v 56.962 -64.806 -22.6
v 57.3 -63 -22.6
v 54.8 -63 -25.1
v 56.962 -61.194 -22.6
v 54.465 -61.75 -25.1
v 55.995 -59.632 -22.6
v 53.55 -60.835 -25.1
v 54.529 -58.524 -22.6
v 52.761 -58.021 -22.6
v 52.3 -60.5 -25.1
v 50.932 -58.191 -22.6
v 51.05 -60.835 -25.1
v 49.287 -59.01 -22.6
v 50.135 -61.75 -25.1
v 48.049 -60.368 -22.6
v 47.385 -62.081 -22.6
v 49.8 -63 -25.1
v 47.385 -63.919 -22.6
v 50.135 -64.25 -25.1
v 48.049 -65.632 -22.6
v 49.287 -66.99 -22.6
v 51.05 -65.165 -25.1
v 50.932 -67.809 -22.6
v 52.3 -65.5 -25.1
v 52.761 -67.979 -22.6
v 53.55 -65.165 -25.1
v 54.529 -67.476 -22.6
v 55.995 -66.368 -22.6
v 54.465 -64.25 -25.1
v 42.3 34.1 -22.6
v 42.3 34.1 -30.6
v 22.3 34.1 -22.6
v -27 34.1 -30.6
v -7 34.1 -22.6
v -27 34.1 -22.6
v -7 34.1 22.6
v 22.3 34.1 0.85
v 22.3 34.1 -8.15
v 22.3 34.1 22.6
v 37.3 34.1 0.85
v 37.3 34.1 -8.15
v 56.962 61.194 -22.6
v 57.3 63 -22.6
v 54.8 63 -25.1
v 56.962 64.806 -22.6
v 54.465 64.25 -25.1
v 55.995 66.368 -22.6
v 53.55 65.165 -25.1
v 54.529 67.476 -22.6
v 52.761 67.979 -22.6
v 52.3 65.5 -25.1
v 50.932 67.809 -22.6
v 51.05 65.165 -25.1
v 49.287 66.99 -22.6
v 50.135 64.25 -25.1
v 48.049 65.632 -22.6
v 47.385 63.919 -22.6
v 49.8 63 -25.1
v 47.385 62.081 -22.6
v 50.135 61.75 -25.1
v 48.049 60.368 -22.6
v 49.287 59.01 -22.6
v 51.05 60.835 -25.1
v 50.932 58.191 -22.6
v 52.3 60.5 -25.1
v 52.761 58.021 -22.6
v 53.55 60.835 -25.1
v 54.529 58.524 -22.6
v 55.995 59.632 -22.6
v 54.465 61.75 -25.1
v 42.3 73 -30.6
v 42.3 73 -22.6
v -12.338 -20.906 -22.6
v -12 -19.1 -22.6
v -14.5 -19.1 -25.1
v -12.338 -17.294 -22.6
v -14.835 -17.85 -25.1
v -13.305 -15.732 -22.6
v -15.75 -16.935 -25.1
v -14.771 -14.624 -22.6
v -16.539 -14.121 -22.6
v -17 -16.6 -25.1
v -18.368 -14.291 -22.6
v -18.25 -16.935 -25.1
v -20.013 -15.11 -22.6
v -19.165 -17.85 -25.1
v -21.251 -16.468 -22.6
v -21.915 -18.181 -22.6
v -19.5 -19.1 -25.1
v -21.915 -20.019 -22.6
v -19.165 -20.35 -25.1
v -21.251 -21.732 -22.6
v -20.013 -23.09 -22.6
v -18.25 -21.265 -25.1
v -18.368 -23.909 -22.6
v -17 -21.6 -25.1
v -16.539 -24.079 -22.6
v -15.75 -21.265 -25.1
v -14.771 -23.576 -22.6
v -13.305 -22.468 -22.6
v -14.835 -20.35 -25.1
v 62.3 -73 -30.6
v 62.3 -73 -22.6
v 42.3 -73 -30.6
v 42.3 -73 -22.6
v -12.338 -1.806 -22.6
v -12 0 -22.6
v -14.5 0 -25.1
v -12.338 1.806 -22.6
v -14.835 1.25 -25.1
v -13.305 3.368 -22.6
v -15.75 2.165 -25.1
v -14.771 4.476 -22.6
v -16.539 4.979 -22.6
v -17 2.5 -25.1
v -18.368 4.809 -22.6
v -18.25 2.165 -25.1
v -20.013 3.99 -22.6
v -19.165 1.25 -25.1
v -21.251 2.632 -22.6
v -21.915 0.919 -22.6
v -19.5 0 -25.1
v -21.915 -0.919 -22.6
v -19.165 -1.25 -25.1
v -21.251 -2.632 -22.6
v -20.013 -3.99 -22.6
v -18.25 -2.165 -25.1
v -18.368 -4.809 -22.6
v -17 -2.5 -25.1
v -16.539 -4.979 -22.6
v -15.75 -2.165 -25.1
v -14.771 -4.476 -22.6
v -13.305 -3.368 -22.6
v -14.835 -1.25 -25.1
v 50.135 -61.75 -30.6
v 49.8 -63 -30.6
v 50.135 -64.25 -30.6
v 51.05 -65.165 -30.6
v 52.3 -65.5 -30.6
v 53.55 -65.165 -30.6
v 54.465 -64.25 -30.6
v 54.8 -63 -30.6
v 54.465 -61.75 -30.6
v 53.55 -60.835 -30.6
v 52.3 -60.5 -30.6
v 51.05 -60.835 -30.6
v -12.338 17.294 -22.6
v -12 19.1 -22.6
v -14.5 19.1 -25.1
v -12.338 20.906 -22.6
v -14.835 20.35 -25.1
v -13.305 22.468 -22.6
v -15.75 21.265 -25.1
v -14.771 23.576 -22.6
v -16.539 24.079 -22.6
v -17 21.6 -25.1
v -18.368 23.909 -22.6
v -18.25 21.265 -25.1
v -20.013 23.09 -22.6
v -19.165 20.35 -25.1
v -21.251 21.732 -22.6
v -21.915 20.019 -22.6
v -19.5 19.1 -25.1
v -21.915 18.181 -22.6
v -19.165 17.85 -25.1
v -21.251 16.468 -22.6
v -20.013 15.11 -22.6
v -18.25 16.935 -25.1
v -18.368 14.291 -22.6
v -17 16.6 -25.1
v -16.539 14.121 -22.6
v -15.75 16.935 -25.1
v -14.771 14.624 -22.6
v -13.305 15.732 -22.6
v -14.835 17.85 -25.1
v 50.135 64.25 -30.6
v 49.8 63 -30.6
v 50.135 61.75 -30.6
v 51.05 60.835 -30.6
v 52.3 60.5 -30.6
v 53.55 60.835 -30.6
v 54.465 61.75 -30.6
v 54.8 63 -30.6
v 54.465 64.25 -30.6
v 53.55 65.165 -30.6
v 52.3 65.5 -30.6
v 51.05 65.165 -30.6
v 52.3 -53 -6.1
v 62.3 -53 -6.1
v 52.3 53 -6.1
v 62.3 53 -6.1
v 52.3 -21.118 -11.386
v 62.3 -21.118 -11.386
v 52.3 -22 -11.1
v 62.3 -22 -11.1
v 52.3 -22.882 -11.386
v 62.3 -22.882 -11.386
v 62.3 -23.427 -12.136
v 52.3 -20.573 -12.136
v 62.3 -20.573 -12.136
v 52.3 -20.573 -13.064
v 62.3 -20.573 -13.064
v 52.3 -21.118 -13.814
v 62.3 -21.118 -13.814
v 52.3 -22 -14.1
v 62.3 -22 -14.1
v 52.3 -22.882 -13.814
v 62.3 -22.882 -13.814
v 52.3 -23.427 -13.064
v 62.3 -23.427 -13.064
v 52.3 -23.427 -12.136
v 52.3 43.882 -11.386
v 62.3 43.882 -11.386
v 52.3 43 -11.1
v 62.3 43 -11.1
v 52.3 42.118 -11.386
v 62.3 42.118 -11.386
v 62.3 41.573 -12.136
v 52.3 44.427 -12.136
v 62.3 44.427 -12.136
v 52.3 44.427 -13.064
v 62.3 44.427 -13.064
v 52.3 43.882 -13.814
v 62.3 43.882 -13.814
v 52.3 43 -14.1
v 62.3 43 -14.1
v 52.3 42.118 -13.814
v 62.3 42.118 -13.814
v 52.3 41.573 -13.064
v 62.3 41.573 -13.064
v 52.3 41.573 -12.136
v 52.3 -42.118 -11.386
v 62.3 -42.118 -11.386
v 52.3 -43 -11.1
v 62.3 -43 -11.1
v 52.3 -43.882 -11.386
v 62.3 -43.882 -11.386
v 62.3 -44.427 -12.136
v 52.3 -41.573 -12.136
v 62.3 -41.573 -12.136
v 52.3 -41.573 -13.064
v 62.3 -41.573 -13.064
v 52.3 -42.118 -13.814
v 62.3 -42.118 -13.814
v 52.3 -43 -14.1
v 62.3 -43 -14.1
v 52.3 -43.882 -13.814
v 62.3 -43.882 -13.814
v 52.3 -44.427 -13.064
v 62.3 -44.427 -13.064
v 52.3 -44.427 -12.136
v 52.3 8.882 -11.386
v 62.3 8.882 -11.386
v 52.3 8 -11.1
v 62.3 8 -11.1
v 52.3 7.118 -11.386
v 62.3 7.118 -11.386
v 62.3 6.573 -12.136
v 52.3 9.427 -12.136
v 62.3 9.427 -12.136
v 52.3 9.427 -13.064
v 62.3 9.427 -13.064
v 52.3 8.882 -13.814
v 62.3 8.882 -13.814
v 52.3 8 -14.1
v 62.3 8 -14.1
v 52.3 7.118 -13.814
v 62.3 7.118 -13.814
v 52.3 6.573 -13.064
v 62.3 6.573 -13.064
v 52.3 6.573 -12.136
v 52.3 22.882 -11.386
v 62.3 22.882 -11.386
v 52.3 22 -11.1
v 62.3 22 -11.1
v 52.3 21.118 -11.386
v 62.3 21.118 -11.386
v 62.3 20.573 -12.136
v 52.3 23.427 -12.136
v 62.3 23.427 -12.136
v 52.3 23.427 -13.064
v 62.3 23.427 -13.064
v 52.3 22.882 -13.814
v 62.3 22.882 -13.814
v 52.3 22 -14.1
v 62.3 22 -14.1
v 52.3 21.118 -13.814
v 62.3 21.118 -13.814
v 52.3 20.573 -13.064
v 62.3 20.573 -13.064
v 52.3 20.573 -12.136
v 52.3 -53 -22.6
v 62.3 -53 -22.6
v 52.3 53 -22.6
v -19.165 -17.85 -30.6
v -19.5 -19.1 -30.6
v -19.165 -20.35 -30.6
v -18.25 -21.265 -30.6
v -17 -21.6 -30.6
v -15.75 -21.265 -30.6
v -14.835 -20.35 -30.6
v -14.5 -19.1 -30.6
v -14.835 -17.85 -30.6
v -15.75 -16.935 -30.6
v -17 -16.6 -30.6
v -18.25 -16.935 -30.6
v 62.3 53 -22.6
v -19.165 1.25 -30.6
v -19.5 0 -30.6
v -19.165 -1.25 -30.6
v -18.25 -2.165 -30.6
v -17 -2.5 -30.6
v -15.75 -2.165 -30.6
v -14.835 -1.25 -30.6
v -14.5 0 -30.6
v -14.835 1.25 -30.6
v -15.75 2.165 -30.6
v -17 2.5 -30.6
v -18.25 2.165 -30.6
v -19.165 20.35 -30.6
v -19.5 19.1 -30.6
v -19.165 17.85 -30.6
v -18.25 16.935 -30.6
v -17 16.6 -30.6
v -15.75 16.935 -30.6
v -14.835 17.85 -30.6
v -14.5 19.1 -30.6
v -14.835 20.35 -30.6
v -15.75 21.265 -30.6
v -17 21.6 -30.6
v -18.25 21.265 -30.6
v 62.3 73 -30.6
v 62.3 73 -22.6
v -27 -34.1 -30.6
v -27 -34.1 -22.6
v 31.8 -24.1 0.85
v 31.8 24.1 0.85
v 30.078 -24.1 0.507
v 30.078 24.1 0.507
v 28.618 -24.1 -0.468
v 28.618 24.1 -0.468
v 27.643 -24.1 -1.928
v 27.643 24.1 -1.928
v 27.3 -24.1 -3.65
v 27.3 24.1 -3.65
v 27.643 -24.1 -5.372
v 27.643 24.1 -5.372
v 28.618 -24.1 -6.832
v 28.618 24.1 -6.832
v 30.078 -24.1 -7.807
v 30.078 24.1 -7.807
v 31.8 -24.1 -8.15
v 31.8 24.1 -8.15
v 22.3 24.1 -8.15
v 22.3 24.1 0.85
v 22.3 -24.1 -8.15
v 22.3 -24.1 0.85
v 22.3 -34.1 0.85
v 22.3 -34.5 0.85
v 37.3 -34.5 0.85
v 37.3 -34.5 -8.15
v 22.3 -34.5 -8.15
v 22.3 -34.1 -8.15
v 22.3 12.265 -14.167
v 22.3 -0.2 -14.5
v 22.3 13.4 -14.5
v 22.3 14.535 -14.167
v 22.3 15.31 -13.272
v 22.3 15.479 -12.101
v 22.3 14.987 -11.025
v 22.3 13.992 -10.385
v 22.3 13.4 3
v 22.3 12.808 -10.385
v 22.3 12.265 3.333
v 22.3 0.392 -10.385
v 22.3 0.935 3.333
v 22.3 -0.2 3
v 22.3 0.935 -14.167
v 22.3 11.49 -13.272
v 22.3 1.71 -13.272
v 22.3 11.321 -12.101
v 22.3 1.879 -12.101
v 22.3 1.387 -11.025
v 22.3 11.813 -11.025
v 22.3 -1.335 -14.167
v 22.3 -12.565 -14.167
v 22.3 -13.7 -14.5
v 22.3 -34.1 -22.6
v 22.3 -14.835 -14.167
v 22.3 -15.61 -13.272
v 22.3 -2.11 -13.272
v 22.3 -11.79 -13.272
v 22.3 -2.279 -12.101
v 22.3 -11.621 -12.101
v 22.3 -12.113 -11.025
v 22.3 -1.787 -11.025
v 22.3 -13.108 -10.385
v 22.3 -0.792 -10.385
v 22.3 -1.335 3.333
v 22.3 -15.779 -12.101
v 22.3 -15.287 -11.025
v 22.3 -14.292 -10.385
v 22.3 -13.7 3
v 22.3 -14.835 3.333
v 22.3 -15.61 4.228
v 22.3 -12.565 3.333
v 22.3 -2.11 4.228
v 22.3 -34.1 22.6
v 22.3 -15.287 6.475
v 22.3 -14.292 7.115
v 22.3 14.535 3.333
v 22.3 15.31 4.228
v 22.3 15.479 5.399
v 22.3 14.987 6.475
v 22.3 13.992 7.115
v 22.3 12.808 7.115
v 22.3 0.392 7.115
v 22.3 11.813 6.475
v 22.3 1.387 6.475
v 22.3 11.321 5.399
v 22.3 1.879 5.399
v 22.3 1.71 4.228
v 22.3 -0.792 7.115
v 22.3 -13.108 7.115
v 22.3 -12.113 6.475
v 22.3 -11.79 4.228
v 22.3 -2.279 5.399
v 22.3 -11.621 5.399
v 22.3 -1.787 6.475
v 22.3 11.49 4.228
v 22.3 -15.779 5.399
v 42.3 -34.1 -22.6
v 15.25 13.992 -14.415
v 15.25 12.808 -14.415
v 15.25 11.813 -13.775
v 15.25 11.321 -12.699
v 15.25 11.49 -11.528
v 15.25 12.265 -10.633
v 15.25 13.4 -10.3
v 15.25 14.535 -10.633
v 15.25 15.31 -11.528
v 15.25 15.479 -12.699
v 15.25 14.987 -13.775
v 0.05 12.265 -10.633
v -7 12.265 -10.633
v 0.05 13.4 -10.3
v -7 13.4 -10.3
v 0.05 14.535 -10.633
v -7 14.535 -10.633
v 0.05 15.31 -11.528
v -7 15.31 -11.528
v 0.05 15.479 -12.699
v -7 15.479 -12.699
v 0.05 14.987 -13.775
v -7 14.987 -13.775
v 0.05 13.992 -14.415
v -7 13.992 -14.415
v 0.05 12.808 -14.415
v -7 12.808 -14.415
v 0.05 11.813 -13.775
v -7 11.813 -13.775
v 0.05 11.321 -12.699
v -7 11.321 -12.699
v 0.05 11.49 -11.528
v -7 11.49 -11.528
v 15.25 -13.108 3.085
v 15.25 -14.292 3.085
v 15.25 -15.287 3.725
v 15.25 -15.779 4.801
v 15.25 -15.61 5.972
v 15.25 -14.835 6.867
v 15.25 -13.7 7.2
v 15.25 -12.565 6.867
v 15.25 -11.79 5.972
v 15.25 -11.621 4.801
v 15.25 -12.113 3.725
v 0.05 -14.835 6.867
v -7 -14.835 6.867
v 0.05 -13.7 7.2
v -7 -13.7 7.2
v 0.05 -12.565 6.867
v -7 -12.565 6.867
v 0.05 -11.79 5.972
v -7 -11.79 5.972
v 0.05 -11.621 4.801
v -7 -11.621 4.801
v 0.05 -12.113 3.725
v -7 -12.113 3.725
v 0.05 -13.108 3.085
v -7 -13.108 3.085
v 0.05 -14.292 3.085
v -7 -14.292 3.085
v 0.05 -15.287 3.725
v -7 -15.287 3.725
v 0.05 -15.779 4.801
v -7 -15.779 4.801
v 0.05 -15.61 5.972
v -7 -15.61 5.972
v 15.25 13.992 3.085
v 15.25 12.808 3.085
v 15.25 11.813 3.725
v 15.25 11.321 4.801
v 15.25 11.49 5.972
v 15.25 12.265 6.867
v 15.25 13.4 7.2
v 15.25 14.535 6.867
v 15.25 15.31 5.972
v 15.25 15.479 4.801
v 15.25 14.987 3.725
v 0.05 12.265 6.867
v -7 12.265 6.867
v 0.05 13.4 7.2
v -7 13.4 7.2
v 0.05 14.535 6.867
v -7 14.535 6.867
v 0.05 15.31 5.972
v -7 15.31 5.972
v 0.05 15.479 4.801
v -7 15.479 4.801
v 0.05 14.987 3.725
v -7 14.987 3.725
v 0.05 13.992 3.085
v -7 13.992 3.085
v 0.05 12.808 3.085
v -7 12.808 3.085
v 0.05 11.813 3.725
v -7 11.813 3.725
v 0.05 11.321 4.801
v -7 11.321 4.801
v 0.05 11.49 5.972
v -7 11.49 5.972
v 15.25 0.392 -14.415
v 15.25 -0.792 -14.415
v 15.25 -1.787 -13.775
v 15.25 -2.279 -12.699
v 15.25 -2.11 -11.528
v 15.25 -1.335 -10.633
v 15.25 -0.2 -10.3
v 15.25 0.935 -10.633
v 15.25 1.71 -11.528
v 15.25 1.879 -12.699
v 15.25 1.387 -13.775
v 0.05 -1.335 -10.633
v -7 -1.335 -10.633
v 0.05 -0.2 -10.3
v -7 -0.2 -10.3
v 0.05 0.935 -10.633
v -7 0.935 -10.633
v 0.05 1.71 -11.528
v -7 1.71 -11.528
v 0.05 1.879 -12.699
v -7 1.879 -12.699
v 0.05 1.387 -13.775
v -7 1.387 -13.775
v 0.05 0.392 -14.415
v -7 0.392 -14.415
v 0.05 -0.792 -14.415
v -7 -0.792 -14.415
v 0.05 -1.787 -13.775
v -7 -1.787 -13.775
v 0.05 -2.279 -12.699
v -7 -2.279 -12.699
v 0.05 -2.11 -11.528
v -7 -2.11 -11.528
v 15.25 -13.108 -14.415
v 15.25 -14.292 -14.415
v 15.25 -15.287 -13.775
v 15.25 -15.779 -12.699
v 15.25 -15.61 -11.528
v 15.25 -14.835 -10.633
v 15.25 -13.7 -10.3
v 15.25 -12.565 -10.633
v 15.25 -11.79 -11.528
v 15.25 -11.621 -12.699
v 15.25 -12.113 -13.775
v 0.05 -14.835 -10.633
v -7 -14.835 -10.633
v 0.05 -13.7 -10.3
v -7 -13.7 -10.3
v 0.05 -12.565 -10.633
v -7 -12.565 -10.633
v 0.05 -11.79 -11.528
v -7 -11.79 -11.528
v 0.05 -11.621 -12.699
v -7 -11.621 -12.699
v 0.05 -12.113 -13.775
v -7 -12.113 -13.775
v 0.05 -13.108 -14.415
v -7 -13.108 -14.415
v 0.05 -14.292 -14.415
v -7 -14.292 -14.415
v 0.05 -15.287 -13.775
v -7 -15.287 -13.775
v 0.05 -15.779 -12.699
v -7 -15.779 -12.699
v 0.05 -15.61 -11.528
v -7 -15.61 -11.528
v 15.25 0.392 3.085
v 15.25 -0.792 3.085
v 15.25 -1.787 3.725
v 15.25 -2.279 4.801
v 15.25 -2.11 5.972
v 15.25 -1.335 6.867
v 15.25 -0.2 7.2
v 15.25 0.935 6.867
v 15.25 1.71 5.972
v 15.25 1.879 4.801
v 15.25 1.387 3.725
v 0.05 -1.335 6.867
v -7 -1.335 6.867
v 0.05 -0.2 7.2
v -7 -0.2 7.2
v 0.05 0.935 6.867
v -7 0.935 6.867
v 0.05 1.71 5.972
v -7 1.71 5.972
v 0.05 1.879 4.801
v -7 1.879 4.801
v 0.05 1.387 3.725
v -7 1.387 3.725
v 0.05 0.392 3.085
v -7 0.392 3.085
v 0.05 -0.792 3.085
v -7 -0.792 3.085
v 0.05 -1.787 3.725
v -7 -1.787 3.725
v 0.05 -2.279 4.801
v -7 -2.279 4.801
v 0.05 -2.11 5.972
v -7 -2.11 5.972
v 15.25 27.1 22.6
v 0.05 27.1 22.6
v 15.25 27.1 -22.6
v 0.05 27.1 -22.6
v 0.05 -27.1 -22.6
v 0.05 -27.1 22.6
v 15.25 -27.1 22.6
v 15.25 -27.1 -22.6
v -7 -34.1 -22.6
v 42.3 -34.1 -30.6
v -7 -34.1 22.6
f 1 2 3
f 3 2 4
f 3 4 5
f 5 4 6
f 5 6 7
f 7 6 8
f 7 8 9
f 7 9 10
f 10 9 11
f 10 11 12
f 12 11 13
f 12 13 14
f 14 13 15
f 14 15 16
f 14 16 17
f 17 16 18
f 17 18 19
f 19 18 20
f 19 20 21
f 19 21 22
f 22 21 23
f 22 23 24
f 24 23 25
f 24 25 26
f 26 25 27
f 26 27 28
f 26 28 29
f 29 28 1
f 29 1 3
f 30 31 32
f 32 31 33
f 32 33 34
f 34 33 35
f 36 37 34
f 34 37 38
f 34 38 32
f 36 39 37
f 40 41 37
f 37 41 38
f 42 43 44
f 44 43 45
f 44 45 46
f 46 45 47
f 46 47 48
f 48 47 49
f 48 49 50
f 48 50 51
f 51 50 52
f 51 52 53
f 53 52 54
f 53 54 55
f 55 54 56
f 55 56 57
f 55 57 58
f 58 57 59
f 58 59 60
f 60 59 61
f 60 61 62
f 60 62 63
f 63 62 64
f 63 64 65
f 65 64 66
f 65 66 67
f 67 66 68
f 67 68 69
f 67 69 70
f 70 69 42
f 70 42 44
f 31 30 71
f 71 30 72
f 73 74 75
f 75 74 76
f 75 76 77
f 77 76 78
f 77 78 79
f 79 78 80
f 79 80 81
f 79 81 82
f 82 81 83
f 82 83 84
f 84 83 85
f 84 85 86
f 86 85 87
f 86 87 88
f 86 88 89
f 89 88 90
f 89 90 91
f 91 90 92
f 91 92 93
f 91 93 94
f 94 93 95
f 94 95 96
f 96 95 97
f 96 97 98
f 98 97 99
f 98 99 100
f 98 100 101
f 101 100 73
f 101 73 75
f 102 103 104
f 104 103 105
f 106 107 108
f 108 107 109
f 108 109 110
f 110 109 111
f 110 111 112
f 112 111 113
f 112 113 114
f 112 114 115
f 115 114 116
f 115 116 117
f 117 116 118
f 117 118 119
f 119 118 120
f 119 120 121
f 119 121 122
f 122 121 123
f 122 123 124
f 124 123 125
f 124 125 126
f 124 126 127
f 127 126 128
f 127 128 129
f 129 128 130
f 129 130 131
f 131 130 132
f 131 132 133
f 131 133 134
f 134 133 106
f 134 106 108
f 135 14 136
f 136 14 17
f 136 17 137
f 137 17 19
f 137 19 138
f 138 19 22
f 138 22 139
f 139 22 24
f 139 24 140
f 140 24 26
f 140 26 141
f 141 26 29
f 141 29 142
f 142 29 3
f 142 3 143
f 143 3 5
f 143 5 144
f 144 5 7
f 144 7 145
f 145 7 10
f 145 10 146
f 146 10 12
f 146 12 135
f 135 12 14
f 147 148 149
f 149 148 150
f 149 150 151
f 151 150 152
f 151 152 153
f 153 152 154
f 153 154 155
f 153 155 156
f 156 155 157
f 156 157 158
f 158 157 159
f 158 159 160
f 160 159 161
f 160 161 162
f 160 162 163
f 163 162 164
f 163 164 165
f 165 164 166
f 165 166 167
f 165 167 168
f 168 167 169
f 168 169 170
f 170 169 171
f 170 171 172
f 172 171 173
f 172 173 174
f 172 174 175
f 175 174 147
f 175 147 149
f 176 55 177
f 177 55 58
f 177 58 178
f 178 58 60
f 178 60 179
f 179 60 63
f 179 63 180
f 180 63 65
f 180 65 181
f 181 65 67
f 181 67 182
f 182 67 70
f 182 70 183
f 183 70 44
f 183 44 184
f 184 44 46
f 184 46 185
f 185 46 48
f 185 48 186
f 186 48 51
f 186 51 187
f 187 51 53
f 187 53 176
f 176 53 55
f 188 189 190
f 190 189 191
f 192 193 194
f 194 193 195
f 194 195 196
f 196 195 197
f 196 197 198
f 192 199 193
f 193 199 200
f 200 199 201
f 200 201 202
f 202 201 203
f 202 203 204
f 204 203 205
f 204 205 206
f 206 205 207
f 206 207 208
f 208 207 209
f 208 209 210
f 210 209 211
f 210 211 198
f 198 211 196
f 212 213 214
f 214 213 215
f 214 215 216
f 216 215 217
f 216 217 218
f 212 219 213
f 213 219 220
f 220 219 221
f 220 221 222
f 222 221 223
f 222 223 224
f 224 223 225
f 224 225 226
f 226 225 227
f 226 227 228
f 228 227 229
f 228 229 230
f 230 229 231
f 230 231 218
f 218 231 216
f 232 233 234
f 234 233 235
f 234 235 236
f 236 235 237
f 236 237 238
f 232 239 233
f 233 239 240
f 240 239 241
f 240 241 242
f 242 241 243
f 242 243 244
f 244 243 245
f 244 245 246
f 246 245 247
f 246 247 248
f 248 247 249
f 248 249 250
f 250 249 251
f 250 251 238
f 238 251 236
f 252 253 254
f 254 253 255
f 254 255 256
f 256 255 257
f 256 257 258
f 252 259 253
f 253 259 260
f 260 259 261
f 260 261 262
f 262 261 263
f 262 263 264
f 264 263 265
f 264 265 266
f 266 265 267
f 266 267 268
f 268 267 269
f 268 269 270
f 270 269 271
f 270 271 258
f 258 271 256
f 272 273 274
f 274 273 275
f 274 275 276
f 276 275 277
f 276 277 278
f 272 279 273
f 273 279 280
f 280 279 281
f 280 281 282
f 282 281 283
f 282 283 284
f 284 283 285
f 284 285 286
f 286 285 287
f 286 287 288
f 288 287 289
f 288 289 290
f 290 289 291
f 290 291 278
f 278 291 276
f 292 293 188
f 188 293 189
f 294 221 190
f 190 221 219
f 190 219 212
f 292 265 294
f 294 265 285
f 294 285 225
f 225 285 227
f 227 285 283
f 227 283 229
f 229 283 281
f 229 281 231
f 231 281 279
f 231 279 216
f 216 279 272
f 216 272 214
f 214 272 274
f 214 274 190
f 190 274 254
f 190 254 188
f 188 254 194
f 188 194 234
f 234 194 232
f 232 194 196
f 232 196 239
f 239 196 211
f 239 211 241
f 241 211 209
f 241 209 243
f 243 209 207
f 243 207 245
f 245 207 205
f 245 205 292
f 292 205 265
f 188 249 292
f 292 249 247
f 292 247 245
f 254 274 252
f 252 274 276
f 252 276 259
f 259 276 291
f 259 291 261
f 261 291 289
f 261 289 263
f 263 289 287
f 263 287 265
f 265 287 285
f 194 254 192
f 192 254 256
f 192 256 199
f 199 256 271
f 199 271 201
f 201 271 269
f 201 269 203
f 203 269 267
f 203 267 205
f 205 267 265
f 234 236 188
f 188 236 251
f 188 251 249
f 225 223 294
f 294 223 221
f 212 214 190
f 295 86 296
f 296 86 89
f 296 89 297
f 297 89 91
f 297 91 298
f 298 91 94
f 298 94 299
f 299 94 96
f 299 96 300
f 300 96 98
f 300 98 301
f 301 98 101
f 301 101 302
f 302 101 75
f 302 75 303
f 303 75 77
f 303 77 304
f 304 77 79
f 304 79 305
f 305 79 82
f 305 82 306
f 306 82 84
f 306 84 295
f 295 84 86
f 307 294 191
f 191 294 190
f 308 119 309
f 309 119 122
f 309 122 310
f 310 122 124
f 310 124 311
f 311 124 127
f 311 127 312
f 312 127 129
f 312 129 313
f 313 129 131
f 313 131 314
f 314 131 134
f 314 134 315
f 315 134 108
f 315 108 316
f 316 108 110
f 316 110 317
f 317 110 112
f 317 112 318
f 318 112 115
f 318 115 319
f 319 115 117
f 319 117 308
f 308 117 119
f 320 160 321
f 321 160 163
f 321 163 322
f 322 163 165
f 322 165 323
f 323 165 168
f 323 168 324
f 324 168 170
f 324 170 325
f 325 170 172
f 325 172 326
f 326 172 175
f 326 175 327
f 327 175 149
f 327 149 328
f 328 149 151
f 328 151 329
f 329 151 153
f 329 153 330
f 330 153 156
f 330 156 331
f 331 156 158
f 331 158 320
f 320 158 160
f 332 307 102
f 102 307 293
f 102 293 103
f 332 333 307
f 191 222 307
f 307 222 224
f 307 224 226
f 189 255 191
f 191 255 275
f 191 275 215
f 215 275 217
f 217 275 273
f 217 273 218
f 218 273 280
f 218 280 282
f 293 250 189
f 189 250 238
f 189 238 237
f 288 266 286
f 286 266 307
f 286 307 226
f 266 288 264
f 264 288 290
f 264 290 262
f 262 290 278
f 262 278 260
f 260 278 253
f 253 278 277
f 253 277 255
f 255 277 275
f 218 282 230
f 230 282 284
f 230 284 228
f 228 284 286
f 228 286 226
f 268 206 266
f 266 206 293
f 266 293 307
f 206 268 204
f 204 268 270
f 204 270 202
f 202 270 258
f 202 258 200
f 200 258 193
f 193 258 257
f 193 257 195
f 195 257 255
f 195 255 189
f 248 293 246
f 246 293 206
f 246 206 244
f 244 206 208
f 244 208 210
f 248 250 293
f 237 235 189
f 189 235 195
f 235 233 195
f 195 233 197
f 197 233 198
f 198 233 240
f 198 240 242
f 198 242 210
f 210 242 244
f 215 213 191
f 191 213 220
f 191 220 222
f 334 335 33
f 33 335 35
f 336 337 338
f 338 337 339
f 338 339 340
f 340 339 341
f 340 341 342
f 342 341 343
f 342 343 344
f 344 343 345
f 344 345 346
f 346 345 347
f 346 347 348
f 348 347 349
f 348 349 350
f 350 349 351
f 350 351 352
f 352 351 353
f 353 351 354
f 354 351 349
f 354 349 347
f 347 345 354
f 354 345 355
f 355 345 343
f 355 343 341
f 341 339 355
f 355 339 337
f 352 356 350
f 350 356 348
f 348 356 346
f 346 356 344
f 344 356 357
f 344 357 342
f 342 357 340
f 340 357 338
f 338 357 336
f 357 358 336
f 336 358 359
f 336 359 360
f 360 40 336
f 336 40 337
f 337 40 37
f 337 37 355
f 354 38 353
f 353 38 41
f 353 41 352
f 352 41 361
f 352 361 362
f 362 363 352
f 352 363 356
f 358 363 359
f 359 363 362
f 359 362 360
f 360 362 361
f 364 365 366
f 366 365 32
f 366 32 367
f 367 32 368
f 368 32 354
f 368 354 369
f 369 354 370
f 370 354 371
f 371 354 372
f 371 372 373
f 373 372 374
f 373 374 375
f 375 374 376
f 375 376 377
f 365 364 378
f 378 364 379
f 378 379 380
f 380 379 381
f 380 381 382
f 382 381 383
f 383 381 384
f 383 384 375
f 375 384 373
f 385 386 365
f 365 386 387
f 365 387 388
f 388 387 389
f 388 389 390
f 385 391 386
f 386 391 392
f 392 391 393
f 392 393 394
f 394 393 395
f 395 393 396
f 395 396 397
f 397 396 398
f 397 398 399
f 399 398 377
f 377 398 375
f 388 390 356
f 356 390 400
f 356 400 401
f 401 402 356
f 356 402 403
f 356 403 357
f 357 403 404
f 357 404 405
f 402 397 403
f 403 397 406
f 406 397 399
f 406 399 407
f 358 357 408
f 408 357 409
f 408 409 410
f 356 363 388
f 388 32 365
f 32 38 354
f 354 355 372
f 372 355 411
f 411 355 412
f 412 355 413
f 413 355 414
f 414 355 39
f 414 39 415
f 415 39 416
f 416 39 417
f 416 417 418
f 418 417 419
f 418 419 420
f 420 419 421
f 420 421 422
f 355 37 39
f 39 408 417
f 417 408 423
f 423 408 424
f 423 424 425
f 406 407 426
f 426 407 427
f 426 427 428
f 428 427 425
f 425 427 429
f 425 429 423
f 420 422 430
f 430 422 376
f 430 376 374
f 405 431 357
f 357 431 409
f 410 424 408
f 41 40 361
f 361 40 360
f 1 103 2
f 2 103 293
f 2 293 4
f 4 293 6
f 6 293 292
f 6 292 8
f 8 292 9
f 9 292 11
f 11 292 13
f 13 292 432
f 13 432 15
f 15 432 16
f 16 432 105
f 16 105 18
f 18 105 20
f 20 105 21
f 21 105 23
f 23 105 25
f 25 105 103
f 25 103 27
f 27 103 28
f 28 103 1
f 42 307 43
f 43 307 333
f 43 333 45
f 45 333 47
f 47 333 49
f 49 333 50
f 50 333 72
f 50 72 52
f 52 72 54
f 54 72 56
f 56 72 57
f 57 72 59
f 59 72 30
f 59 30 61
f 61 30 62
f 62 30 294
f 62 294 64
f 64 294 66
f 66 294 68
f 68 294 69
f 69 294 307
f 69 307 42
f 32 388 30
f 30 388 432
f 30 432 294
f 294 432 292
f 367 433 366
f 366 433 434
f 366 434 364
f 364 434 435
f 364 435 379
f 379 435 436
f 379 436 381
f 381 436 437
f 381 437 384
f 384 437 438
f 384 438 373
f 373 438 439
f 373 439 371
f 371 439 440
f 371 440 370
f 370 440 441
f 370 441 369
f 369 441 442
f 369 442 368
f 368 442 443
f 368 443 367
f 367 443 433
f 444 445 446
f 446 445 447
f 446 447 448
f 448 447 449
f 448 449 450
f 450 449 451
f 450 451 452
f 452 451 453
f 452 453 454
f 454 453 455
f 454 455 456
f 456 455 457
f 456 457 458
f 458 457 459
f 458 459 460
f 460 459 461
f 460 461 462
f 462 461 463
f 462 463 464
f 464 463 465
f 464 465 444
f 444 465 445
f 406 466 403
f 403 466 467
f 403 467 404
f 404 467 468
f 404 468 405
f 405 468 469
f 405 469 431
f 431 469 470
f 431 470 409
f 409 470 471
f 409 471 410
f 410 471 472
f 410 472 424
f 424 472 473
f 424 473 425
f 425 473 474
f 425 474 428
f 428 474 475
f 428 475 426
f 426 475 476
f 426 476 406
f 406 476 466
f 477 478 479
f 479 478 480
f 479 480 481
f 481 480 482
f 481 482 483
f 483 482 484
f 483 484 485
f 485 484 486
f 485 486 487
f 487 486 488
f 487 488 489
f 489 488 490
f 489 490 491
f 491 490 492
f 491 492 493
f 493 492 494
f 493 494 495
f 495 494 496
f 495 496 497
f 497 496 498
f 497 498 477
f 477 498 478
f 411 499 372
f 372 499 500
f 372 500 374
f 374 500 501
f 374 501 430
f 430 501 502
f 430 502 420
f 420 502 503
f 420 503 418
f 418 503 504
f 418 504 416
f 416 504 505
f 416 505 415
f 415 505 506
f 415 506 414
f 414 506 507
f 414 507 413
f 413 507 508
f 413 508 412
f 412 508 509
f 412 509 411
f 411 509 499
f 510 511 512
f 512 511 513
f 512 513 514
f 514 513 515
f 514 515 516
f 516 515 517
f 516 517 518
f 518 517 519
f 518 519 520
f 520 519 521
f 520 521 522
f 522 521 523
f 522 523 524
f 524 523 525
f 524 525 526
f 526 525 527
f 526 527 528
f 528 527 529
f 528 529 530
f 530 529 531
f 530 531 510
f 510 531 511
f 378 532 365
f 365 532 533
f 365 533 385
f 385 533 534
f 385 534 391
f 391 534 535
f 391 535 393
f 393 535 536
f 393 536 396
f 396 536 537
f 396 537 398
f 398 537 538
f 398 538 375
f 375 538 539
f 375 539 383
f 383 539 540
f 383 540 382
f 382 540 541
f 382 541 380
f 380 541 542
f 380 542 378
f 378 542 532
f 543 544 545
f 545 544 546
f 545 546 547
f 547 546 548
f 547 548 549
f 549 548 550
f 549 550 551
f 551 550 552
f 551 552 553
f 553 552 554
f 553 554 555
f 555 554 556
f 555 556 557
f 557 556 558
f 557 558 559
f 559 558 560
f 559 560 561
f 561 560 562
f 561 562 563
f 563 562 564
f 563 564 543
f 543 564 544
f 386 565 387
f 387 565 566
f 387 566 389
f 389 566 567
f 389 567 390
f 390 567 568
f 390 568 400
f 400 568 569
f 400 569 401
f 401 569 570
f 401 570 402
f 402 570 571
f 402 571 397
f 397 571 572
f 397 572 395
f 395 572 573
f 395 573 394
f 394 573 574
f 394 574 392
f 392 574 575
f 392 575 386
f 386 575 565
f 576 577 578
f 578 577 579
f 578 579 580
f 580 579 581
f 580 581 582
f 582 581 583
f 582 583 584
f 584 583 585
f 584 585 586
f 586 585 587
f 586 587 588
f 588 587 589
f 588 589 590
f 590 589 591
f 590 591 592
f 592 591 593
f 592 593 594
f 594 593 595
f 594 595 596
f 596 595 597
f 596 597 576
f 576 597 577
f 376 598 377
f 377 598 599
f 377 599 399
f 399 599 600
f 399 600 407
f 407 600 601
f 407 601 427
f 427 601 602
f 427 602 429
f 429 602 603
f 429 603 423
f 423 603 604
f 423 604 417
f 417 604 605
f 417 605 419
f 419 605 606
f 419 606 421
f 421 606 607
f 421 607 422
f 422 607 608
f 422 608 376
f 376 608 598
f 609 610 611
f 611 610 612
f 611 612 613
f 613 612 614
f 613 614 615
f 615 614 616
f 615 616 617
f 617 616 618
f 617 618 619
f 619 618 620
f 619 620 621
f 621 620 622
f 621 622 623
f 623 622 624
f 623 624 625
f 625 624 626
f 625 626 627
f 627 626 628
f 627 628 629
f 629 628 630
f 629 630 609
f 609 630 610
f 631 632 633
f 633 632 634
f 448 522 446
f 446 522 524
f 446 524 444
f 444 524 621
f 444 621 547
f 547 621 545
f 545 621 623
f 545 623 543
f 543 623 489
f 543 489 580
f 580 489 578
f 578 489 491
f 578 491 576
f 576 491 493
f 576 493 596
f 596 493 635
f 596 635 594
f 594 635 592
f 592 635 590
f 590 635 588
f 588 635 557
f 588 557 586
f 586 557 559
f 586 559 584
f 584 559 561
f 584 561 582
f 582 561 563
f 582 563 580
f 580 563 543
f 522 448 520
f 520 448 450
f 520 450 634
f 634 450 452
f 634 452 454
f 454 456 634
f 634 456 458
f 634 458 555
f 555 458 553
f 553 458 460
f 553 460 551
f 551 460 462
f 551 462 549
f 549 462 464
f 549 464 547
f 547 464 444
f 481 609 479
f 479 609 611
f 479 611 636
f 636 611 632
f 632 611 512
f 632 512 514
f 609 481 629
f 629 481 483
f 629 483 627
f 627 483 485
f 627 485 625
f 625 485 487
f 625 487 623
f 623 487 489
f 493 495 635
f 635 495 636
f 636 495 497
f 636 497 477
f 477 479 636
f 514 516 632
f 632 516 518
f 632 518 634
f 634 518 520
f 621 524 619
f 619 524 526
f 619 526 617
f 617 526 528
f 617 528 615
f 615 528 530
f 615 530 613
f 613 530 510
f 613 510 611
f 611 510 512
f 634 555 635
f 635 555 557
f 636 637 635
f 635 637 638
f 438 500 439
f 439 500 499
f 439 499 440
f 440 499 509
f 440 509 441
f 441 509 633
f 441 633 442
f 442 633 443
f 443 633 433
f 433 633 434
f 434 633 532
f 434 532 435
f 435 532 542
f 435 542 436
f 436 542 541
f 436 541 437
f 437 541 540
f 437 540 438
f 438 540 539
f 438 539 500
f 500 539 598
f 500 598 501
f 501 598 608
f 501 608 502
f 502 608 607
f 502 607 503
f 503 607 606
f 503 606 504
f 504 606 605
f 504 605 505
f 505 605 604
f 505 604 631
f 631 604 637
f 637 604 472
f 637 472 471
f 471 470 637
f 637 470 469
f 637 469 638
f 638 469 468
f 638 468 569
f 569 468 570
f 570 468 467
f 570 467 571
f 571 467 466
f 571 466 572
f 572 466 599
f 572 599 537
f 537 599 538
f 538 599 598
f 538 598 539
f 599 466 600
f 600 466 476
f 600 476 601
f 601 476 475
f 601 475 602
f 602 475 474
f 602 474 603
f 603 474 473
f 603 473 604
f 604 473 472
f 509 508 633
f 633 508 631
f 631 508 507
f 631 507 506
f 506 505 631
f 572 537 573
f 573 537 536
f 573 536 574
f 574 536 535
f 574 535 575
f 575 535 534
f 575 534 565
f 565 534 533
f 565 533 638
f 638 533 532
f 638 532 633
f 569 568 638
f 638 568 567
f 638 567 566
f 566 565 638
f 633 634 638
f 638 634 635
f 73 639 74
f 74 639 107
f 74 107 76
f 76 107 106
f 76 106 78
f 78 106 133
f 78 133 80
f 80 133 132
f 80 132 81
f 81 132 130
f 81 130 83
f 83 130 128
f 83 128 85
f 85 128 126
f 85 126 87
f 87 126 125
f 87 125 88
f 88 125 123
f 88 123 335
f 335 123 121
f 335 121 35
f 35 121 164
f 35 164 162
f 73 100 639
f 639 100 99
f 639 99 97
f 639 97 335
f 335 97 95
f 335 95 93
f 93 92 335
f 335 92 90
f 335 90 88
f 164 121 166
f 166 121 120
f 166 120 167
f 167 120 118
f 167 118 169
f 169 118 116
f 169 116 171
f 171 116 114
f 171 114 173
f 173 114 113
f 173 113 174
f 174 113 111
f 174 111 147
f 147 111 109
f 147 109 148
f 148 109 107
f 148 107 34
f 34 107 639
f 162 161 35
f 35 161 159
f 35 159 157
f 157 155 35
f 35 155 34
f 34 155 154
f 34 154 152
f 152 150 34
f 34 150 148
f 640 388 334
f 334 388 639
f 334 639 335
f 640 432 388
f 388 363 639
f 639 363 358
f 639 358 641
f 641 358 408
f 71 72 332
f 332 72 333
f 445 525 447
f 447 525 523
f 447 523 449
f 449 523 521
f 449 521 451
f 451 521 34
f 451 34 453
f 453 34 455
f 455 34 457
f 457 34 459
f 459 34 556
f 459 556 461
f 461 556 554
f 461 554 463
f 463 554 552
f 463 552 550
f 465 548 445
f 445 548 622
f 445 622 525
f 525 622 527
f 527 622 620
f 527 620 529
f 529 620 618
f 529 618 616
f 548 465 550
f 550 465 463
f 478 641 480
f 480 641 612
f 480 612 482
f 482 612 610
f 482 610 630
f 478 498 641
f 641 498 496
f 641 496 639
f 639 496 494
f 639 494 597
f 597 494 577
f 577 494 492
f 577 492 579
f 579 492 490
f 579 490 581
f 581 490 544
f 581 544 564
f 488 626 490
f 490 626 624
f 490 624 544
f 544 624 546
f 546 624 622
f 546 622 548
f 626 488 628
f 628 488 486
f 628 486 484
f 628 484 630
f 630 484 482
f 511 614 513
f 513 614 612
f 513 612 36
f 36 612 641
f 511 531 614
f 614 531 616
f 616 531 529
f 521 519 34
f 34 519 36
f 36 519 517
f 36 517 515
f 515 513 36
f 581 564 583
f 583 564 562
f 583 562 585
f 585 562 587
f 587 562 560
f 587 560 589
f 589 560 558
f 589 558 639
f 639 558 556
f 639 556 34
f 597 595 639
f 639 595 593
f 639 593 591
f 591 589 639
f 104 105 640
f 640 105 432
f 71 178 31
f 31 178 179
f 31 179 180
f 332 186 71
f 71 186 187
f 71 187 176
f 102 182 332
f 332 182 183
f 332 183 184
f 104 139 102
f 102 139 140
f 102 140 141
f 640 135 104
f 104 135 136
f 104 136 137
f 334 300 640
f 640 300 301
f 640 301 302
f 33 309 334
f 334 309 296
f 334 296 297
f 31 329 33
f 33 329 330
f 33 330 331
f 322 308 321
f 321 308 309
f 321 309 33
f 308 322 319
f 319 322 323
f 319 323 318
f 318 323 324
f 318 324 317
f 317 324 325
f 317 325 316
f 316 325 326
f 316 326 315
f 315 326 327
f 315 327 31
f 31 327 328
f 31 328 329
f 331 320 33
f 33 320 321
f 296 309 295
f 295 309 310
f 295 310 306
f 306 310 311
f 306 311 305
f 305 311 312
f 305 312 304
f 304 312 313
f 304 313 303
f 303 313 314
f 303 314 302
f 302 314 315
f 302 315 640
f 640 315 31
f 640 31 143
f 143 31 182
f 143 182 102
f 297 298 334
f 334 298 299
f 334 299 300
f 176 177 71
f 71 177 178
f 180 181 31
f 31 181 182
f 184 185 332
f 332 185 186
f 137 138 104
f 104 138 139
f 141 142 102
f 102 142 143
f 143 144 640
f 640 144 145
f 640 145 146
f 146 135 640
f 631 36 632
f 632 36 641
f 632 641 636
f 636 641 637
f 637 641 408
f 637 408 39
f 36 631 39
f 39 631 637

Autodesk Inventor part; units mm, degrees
ref_plane "YZ Plane" through (0, 0, 0) normal (1, 0, 0) x (0, 1, 0)
ref_plane "XZ Plane" through (0, 0, 0) normal (0, 1, 0) x (-1, 0, 0)
ref_plane "XY Plane" through (0, 0, 0) normal (0, 0, 1) x (1, 0, 0)
sketch "Sketch1" plane through (0, 0, 0) normal (1, 0, 0) x (0, 1, 0)
  line L0 (27.1, -22.6) -> (-27.1, -22.6)
  line L1 (-27.1, -22.6) -> (-27.1, 22.6)
  line L2 (-27.1, 22.6) -> (27.1, 22.6)
  line L3 (27.1, 22.6) -> (27.1, -22.6)
  line L4 (27.1, -22.6) -> (-27.1, 22.6) construction
  line L5 (-27.1, -22.6) -> (27.1, 22.6) construction
  point P0 (0, 0)
  dimension "d0" = 54.2
  dimension "d1" = 45.2
extrude "Extrusion1" add sketch "Sketch1" along normal blind 15.3
sketch "Sketch2" plane through (0, 27.1, 22.6) normal (0, 1, 0) x (1, 0, 0)
  line L0 (15.3, 0) -> (15.3, 45.2) projected
  line L1 (0, 0) -> (0, 45.2) projected
  line L2 (15.3, 0) -> (0, 0)
  line L3 (0, 0) -> (0, 45.2)
  line L4 (0, 45.2) -> (15.3, 45.2)
  line L5 (15.3, 45.2) -> (15.3, 0)
  point P0 (0, 22.6)
extrude "Extrusion2" add sketch "Sketch2" along normal blind 7
sketch "Sketch3" plane through (0, -27.1, -22.6) normal (0, -1, 0) x (1, 0, 0)
  line L0 (0, 45.2) -> (0, 0) projected
  line L1 (15.3, 45.2) -> (15.3, 0) projected
  line L2 (0, 45.2) -> (15.3, 45.2)
  line L3 (15.3, 45.2) -> (15.3, 0)
  line L4 (15.3, 0) -> (0, 0)
  line L5 (0, 0) -> (0, 45.2)
  point P0 (0, 22.6)
extrude "Extrusion3" add sketch "Sketch3" along normal blind 7
sketch "Sketch4" plane through (15.3, 0, 0) normal (1, 0, 0) x (0, 0, -1)
  line L0 (-22.6, -34.1) -> (-22.6, 34.1) projected
  line L1 (-22.6, 34.1) -> (22.6, 34.1) projected
  line L2 (-22.6, -34.1) -> (22.6, -34.1)
  line L3 (22.6, -34.1) -> (22.6, 34.1)
  line L4 (22.6, 34.1) -> (-22.6, 34.1)
  line L5 (-22.6, 34.1) -> (-22.6, -34.1)
  point P0 (0, 0)
extrude "Extrusion4" add sketch "Sketch4" along normal blind 7
sketch "Sketch5" plane through (0, 0, 0) normal (-1, 0, 0) x (0, 0, 1)
  line L0 (-22.6, 34.1) -> (22.6, 34.1) projected
  line L1 (22.6, -34.1) -> (-22.6, -34.1) projected
  line L2 (22.6, 34.1) -> (-22.6, 34.1)
  line L3 (-22.6, 34.1) -> (-22.6, -34.1)
  line L4 (-22.6, -34.1) -> (22.6, -34.1)
  line L5 (22.6, -34.1) -> (22.6, 34.1)
  point P0 (0, 0)
extrude "Extrusion5" add sketch "Sketch5" along normal blind 7
sketch "Sketch6" plane through (22.3, -34.1, -22.6) normal (0, 0, -1) x (-1, 0, 0)
  line L0 (29.3, 0) -> (0, 0) projected
  line L1 (0, 68.2) -> (0, 0) projected
  line L2 (29.3, 0) -> (0, 0)
  line L3 (0, 0) -> (0, 68.2)
  line L4 (0, 68.2) -> (29.3, 68.2)
  line L5 (29.3, 68.2) -> (29.3, 0)
  point P0 (22.3, 34.1)
extrude "Extrusion6" add sketch "Sketch6" along normal blind 10
sketch "Sketch7" plane through (-7, 0, 0) normal (-1, 0, 0) x (0, 0, 1)
  line L0 (22.6, 34.1) -> (-32.6, 34.1) projected
  line L1 (22.6, -34.1) -> (-32.6, -34.1) projected
  line L2 (-32.6, 34.1) -> (-22.6, 34.1)
  line L3 (-22.6, 34.1) -> (-22.6, -34.1)
  line L4 (-22.6, -34.1) -> (-32.6, -34.1)
  line L5 (-32.6, -34.1) -> (-32.6, 34.1)
  point P0 (0, 0)
  dimension "d14" = 10
extrude "Extrusion7" add sketch "Sketch7" along normal blind 20
sketch "Sketch8" plane through (22.3, -34.1, 22.6) normal (0, 0, 1) x (1, 0, 0)
  line L0 (0, 68.2) -> (-49.3, 68.2) projected
  line L1 (-29.3, 0) -> (-29.3, 68.2) projected
  line L2 (0, 68.2) -> (-29.3, 68.2)
  line L3 (-29.3, 68.2) -> (-29.3, 0)
  line L4 (-29.3, 0) -> (0, 0)
  line L5 (0, 0) -> (0, 68.2)
  line L6 (-22.25, 7) -> (-7.05, 7)
  line L7 (-7.05, 7) -> (-7.05, 61.2)
  line L8 (-7.05, 61.2) -> (-22.25, 61.2)
  line L9 (-22.25, 61.2) -> (-22.25, 7)
  line L10 (-22.25, 7) -> (-7.05, 61.2) construction
  line L11 (-7.05, 7) -> (-22.25, 61.2) construction
  point P0 (-22.3, 34.1)
  point P1 (-14.65, 34.1)
  dimension "d17" = 15.2
  dimension "d18" = 54.2
extrude "Extrusion8" cut sketch "Sketch8" against normal blind 45.2 contours L9 L8 L7 L6
sketch "Sketch9" plane through (22.3, 0, 0) normal (1, 0, 0) x (0, 0, -1)
  line L0 (-22.6, -27.1) -> (22.6, -27.1) projected
  line L1 (-22.6, 27.1) -> (22.6, 27.1) projected
  line L2 (-22.6, -27.1) -> (22.6, -27.1)
  line L3 (22.6, -27.1) -> (22.6, 27.1)
  line L4 (22.6, 27.1) -> (-22.6, 27.1)
  line L5 (-22.6, 27.1) -> (-22.6, -27.1)
  line L6 (-22.6, -27.1) -> (-5.1, -27.1)
  circle A0 centre (-5.1, -13.7) radius 2.1
  circle A1 centre (-5.1, -0.2) radius 2.1
  circle A2 centre (-5.1, 13.4) radius 2.1
  circle A3 centre (12.4, -13.7) radius 2.1
  circle A4 centre (12.4, -0.2) radius 2.1
  circle A5 centre (12.4, 13.4) radius 2.1
  point P0 (0, 0)
extrude "Extrusion9" cut sketch "Sketch9" against normal blind 39.25 contours A0 | A1 | A2 | A3 | A4 | A5
sketch "Sketch10" plane through (22.3, 0, 0) normal (1, 0, 0) x (0, 0, -1)
  line L0 (-22.6, -34.1) -> (32.6, -34.1) projected
  line L1 (-22.6, 34.1) -> (32.6, 34.1) projected
  line L2 (32.6, -34.1) -> (22.6, -34.1)
  line L3 (22.6, -34.1) -> (22.6, 34.1)
  line L4 (22.6, 34.1) -> (32.6, 34.1)
  line L5 (32.6, 34.1) -> (32.6, -34.1)
  point P0 (0, 0)
  dimension "d36" = 10
extrude "Extrusion10" add sketch "Sketch10" along normal blind 20
sketch "Sketch11" plane through (42.3, 0, 0) normal (1, 0, 0) x (0, 0, -1)
  line L0 (32.6, 73) -> (22.6, 73)
  line L1 (22.6, 73) -> (22.6, -73)
  line L2 (22.6, -73) -> (32.6, -73)
  line L3 (32.6, -73) -> (32.6, 73)
  line L4 (32.6, 73) -> (22.6, -73) construction
  line L5 (22.6, 73) -> (32.6, -73) construction
  point P0 (0, 0)
  point P1 (27.6, 0)
  dimension "d62" = 10
  dimension "d63" = 146
sketch "Sketch12" plane through (22.3, 0, 0) normal (1, 0, 0) x (0, 0, -1)
  circle A0 centre (-5.1, -0.2) radius 2.1 projected
  circle A1 centre (12.4, -0.2) radius 2.1 projected
  line L0 (-5.1, -0.2) -> (12.4, -0.2)
  line L1 (-22.6, 27.1) -> (22.6, 27.1) projected
  line L2 (-0.85, -27.5) -> (8.15, -27.5)
  line L3 (8.15, -27.5) -> (8.15, 27.1)
  line L4 (8.15, 27.1) -> (-0.85, 27.1)
  line L5 (-0.85, 27.1) -> (-0.85, -27.5)
  line L6 (-0.85, -27.5) -> (8.15, 27.1) construction
  line L7 (8.15, -27.5) -> (-0.85, 27.1) construction
  point P0 (0, 0)
  point P1 (3.65, -0.2)
  dimension "d42" = 9
extrude "Extrusion12" add sketch "Sketch12" along normal blind 15 contours L5 L1 L3 L0 | L0 L3 L2 L5
sketch "Sketch13" plane through (22.3, -27.5, 0.85) normal (0, 0, 1) x (1, 0, 0)
  line L0 (0, 0) -> (15, 0) projected
  line L1 (15, 0) -> (15, 10)
  line L2 (15, 54.6) -> (15, 0) projected
  line L3 (15, 0) -> (25, 0) construction
  line L4 (0, 54.6) -> (15, 54.6) projected
  line L5 (15, 54.6) -> (15, 44.6)
  line L6 (0, 54.6) -> (0, 0) projected
  line L7 (5, 10) -> (5, 44.6)
  line L8 (0, 44.6) -> (0, 10)
  line L9 (0, -6.6) -> (0, 3.4)
  line L10 (0, 61.6) -> (0, 51.6)
  line L11 (0, 61.6) -> (10, 61.6) construction
  line L12 (0, 3.4) -> (5, 3.4)
  line L13 (5, 3.4) -> (5, 51.6)
  line L14 (5, 51.6) -> (0, 51.6)
  line L15 (0, 51.6) -> (0, 3.4)
  point P0 (-22.3, 27.5)
  dimension "d45" = 10
  dimension "d46" = 90
  dimension "d47" = 10
  dimension "d48" = 5
  dimension "d56" = 10
  dimension "d57" = 10
  dimension "d58" = 90
sketch "Sketch14" plane through (22.3, 27.1, 0.85) normal (0, 1, 0) x (1, 0, 0)
  line L0 (15, 9) -> (15, 0) projected
  line L1 (0, 9) -> (0, 0) projected
  line L2 (15, 0) -> (0, 0)
  line L3 (0, 0) -> (0, 9)
  line L4 (0, 9) -> (15, 9)
  line L5 (15, 9) -> (15, 0)
  point P0 (-22.3, 0.85)
extrude "Extrusion14" add sketch "Sketch14" along normal blind 7
sketch "Sketch15" plane through (22.3, -27.5, -8.15) normal (0, -1, 0) x (1, 0, 0)
  line L0 (0, 0) -> (0, 9) projected
  line L1 (15, 9) -> (15, 0) projected
  line L2 (0, 9) -> (15, 9)
  line L3 (15, 9) -> (15, 0)
  line L4 (15, 0) -> (0, 0)
  line L5 (0, 0) -> (0, 9)
  point P0 (-22.3, 8.15)
extrude "Extrusion15" add sketch "Sketch15" along normal blind 7
extrude "Extrusion16" cut sketch "Sketch13" against normal blind 9.75 contours L6 L14 L13 L7 L12
fillet "Fillet2" radius 4.5 2 edges at (27.3, 0, 0.85) (27.3, 0, -8.15)
extrude "Extrusion17" add sketch "Sketch11" along normal blind 20
sketch "Sketch16" plane through (22.3, -34.1, -22.6) normal (0, 0, 1) x (1, 0, 0)
  line L0 (20, 0) -> (20, -38.9) projected
  line L1 (40, -38.9) -> (40, 107.1) projected
  line L2 (20, -38.9) -> (40, -38.9)
  line L3 (40, -38.9) -> (40, 107.1)
  line L4 (40, 107.1) -> (20, 107.1)
  line L5 (20, 107.1) -> (20, -38.9)
  line L6 (20, -38.9) -> (20, -18.9)
  line L7 (20, -18.9) -> (40, -18.9)
  line L8 (40, -18.9) -> (40, -38.9)
  line L9 (20, 107.1) -> (20, 87.1)
  line L10 (20, 68.2) -> (20, 107.1) projected
  line L11 (20, 87.1) -> (40, 87.1)
  line L12 (40, 107.1) -> (40, 87.1)
  line L13 (40, 107.1) -> (20, 107.1)
  line L14 (40, -18.9) -> (30, -18.9)
  line L15 (30, -18.9) -> (30, 87.1)
  line L16 (30, 87.1) -> (40, 87.1)
  line L17 (40, 87.1) -> (40, -18.9)
  point P0 (-22.3, 34.1)
  dimension "d66" = 20
  dimension "d67" = 20
  dimension "d68" = 10
extrude "Extrusion18" add sketch "Sketch16" along normal blind 20 contours L15 L11 L1 L7
sketch "Sketch17" plane through (62.3, 0, 0) normal (1, 0, 0) x (0, 0, -1)
  line L0 (2.6, -53) -> (2.6, 53) projected
  line L1 (22.6, -53) -> (2.6, -53) projected
  line L2 (2.6, -53) -> (22.6, -53)
  line L3 (22.6, 53) -> (2.6, 53) projected
  line L4 (22.6, -53) -> (22.6, 53)
  line L5 (2.6, 53) -> (2.6, 43)
  line L6 (2.6, 43) -> (2.6, 22)
  line L7 (2.6, -53) -> (2.6, -43)
  line L8 (2.6, -43) -> (2.6, -22)
  line L9 (2.6, 22) -> (2.6, 8)
  line L10 (2.6, -43) -> (12.6, -43)
  circle A0 centre (12.6, -43) radius 1.5
  circle A1 centre (12.6, -22) radius 1.5
  circle A2 centre (12.6, 8) radius 1.5
  circle A3 centre (12.6, 22) radius 1.5
  circle A4 centre (12.6, 43) radius 1.5
  line L11 (2.6, -53) -> (7.6, -53)
  line L12 (7.6, -53) -> (7.6, 53)
  line L13 (7.6, 53) -> (2.6, 53)
  line L14 (2.6, 53) -> (2.6, -53)
  point P0 (0, 0)
  dimension "d71" = 10
  dimension "d72" = 21
  dimension "d73" = 10
  dimension "d74" = 21
  dimension "d75" = 14
  dimension "d76" = 3
  dimension "d77" = 3
  dimension "d78" = 3
  dimension "d79" = 3
  dimension "d80" = 3
  dimension "d81" = 5
extrude "Extrusion19" cut sketch "Sketch17" against normal blind 20 contours L0 L10 L12 L1 | L0 L3 L12 L10 | A0 | A1 | A2 | A3 | A4
sketch "Sketch18" plane through (62.3, -53, -7.6) normal (0, 0, 1) x (1, 0, 0)
  line L0 (0, 0) -> (-10, 0) projected
  line L1 (0, 106) -> (0, 0) projected
  line L2 (-10, 0) -> (0, 0)
  line L3 (0, 0) -> (0, 106)
  line L4 (0, 106) -> (-10, 106)
  line L5 (-10, 106) -> (-10, 0)
  point P0 (-62.3, 53)
extrude "Extrusion20" add sketch "Sketch18" along normal blind 1.5
sketch "Sketch19" plane through (22.3, -34.1, -22.6) normal (0, 0, 1) x (1, 0, 0)
  line L0 (20, 107.1) -> (40, 107.1) projected
  line L1 (30, 107.1) -> (30, 97.1)
  line L2 (20, -38.9) -> (40, -38.9) projected
  line L3 (30, -38.9) -> (30, -28.9)
  line L4 (-29.3, 0) -> (-49.3, 0) projected
  line L5 (-39.3, 0) -> (-39.3, 68.2)
  line L6 (-29.3, 68.2) -> (-49.3, 68.2) projected
  line L7 (-39.3, 68.2) -> (-39.3, 53.2)
  line L8 (-39.3, 0) -> (-39.3, 15)
  line L9 (-39.3, 34.1) -> (-41.2293, 34.1)
  point P0 (-22.3, 34.1)
  dimension "d86" = 10
  dimension "d87" = 10
  dimension "d88" = 15
  dimension "d89" = 15
hole "Hole1" at (-17, 19.1, -22.6) at (-17, 0, -22.6) at (-17, -19.1, -22.6) at (52.3, 63, -22.6) at (52.3, -63, -22.6) direction (0, 0, -1) diameter 5 end through all countersink diameter 10 countersink angle 90
sketch "Sketch21" plane through (62.3, 0, 0) normal (1, 0, 0) x (0, 0, -1)
  line L0 (22.6, -73) -> (32.6, -73) projected
  line L1 (32.6, 73) -> (22.6, 73) projected
  line L2 (32.6, -73) -> (30.6, -73)
  line L3 (30.6, -73) -> (30.6, 73)
  line L4 (30.6, 73) -> (32.6, 73)
  line L5 (32.6, 73) -> (32.6, -73)
  point P0 (0, 0)
  dimension "d97" = 2
extrude "Extrusion21" cut sketch "Sketch21" against normal blind 171.5
properties part number "base"
